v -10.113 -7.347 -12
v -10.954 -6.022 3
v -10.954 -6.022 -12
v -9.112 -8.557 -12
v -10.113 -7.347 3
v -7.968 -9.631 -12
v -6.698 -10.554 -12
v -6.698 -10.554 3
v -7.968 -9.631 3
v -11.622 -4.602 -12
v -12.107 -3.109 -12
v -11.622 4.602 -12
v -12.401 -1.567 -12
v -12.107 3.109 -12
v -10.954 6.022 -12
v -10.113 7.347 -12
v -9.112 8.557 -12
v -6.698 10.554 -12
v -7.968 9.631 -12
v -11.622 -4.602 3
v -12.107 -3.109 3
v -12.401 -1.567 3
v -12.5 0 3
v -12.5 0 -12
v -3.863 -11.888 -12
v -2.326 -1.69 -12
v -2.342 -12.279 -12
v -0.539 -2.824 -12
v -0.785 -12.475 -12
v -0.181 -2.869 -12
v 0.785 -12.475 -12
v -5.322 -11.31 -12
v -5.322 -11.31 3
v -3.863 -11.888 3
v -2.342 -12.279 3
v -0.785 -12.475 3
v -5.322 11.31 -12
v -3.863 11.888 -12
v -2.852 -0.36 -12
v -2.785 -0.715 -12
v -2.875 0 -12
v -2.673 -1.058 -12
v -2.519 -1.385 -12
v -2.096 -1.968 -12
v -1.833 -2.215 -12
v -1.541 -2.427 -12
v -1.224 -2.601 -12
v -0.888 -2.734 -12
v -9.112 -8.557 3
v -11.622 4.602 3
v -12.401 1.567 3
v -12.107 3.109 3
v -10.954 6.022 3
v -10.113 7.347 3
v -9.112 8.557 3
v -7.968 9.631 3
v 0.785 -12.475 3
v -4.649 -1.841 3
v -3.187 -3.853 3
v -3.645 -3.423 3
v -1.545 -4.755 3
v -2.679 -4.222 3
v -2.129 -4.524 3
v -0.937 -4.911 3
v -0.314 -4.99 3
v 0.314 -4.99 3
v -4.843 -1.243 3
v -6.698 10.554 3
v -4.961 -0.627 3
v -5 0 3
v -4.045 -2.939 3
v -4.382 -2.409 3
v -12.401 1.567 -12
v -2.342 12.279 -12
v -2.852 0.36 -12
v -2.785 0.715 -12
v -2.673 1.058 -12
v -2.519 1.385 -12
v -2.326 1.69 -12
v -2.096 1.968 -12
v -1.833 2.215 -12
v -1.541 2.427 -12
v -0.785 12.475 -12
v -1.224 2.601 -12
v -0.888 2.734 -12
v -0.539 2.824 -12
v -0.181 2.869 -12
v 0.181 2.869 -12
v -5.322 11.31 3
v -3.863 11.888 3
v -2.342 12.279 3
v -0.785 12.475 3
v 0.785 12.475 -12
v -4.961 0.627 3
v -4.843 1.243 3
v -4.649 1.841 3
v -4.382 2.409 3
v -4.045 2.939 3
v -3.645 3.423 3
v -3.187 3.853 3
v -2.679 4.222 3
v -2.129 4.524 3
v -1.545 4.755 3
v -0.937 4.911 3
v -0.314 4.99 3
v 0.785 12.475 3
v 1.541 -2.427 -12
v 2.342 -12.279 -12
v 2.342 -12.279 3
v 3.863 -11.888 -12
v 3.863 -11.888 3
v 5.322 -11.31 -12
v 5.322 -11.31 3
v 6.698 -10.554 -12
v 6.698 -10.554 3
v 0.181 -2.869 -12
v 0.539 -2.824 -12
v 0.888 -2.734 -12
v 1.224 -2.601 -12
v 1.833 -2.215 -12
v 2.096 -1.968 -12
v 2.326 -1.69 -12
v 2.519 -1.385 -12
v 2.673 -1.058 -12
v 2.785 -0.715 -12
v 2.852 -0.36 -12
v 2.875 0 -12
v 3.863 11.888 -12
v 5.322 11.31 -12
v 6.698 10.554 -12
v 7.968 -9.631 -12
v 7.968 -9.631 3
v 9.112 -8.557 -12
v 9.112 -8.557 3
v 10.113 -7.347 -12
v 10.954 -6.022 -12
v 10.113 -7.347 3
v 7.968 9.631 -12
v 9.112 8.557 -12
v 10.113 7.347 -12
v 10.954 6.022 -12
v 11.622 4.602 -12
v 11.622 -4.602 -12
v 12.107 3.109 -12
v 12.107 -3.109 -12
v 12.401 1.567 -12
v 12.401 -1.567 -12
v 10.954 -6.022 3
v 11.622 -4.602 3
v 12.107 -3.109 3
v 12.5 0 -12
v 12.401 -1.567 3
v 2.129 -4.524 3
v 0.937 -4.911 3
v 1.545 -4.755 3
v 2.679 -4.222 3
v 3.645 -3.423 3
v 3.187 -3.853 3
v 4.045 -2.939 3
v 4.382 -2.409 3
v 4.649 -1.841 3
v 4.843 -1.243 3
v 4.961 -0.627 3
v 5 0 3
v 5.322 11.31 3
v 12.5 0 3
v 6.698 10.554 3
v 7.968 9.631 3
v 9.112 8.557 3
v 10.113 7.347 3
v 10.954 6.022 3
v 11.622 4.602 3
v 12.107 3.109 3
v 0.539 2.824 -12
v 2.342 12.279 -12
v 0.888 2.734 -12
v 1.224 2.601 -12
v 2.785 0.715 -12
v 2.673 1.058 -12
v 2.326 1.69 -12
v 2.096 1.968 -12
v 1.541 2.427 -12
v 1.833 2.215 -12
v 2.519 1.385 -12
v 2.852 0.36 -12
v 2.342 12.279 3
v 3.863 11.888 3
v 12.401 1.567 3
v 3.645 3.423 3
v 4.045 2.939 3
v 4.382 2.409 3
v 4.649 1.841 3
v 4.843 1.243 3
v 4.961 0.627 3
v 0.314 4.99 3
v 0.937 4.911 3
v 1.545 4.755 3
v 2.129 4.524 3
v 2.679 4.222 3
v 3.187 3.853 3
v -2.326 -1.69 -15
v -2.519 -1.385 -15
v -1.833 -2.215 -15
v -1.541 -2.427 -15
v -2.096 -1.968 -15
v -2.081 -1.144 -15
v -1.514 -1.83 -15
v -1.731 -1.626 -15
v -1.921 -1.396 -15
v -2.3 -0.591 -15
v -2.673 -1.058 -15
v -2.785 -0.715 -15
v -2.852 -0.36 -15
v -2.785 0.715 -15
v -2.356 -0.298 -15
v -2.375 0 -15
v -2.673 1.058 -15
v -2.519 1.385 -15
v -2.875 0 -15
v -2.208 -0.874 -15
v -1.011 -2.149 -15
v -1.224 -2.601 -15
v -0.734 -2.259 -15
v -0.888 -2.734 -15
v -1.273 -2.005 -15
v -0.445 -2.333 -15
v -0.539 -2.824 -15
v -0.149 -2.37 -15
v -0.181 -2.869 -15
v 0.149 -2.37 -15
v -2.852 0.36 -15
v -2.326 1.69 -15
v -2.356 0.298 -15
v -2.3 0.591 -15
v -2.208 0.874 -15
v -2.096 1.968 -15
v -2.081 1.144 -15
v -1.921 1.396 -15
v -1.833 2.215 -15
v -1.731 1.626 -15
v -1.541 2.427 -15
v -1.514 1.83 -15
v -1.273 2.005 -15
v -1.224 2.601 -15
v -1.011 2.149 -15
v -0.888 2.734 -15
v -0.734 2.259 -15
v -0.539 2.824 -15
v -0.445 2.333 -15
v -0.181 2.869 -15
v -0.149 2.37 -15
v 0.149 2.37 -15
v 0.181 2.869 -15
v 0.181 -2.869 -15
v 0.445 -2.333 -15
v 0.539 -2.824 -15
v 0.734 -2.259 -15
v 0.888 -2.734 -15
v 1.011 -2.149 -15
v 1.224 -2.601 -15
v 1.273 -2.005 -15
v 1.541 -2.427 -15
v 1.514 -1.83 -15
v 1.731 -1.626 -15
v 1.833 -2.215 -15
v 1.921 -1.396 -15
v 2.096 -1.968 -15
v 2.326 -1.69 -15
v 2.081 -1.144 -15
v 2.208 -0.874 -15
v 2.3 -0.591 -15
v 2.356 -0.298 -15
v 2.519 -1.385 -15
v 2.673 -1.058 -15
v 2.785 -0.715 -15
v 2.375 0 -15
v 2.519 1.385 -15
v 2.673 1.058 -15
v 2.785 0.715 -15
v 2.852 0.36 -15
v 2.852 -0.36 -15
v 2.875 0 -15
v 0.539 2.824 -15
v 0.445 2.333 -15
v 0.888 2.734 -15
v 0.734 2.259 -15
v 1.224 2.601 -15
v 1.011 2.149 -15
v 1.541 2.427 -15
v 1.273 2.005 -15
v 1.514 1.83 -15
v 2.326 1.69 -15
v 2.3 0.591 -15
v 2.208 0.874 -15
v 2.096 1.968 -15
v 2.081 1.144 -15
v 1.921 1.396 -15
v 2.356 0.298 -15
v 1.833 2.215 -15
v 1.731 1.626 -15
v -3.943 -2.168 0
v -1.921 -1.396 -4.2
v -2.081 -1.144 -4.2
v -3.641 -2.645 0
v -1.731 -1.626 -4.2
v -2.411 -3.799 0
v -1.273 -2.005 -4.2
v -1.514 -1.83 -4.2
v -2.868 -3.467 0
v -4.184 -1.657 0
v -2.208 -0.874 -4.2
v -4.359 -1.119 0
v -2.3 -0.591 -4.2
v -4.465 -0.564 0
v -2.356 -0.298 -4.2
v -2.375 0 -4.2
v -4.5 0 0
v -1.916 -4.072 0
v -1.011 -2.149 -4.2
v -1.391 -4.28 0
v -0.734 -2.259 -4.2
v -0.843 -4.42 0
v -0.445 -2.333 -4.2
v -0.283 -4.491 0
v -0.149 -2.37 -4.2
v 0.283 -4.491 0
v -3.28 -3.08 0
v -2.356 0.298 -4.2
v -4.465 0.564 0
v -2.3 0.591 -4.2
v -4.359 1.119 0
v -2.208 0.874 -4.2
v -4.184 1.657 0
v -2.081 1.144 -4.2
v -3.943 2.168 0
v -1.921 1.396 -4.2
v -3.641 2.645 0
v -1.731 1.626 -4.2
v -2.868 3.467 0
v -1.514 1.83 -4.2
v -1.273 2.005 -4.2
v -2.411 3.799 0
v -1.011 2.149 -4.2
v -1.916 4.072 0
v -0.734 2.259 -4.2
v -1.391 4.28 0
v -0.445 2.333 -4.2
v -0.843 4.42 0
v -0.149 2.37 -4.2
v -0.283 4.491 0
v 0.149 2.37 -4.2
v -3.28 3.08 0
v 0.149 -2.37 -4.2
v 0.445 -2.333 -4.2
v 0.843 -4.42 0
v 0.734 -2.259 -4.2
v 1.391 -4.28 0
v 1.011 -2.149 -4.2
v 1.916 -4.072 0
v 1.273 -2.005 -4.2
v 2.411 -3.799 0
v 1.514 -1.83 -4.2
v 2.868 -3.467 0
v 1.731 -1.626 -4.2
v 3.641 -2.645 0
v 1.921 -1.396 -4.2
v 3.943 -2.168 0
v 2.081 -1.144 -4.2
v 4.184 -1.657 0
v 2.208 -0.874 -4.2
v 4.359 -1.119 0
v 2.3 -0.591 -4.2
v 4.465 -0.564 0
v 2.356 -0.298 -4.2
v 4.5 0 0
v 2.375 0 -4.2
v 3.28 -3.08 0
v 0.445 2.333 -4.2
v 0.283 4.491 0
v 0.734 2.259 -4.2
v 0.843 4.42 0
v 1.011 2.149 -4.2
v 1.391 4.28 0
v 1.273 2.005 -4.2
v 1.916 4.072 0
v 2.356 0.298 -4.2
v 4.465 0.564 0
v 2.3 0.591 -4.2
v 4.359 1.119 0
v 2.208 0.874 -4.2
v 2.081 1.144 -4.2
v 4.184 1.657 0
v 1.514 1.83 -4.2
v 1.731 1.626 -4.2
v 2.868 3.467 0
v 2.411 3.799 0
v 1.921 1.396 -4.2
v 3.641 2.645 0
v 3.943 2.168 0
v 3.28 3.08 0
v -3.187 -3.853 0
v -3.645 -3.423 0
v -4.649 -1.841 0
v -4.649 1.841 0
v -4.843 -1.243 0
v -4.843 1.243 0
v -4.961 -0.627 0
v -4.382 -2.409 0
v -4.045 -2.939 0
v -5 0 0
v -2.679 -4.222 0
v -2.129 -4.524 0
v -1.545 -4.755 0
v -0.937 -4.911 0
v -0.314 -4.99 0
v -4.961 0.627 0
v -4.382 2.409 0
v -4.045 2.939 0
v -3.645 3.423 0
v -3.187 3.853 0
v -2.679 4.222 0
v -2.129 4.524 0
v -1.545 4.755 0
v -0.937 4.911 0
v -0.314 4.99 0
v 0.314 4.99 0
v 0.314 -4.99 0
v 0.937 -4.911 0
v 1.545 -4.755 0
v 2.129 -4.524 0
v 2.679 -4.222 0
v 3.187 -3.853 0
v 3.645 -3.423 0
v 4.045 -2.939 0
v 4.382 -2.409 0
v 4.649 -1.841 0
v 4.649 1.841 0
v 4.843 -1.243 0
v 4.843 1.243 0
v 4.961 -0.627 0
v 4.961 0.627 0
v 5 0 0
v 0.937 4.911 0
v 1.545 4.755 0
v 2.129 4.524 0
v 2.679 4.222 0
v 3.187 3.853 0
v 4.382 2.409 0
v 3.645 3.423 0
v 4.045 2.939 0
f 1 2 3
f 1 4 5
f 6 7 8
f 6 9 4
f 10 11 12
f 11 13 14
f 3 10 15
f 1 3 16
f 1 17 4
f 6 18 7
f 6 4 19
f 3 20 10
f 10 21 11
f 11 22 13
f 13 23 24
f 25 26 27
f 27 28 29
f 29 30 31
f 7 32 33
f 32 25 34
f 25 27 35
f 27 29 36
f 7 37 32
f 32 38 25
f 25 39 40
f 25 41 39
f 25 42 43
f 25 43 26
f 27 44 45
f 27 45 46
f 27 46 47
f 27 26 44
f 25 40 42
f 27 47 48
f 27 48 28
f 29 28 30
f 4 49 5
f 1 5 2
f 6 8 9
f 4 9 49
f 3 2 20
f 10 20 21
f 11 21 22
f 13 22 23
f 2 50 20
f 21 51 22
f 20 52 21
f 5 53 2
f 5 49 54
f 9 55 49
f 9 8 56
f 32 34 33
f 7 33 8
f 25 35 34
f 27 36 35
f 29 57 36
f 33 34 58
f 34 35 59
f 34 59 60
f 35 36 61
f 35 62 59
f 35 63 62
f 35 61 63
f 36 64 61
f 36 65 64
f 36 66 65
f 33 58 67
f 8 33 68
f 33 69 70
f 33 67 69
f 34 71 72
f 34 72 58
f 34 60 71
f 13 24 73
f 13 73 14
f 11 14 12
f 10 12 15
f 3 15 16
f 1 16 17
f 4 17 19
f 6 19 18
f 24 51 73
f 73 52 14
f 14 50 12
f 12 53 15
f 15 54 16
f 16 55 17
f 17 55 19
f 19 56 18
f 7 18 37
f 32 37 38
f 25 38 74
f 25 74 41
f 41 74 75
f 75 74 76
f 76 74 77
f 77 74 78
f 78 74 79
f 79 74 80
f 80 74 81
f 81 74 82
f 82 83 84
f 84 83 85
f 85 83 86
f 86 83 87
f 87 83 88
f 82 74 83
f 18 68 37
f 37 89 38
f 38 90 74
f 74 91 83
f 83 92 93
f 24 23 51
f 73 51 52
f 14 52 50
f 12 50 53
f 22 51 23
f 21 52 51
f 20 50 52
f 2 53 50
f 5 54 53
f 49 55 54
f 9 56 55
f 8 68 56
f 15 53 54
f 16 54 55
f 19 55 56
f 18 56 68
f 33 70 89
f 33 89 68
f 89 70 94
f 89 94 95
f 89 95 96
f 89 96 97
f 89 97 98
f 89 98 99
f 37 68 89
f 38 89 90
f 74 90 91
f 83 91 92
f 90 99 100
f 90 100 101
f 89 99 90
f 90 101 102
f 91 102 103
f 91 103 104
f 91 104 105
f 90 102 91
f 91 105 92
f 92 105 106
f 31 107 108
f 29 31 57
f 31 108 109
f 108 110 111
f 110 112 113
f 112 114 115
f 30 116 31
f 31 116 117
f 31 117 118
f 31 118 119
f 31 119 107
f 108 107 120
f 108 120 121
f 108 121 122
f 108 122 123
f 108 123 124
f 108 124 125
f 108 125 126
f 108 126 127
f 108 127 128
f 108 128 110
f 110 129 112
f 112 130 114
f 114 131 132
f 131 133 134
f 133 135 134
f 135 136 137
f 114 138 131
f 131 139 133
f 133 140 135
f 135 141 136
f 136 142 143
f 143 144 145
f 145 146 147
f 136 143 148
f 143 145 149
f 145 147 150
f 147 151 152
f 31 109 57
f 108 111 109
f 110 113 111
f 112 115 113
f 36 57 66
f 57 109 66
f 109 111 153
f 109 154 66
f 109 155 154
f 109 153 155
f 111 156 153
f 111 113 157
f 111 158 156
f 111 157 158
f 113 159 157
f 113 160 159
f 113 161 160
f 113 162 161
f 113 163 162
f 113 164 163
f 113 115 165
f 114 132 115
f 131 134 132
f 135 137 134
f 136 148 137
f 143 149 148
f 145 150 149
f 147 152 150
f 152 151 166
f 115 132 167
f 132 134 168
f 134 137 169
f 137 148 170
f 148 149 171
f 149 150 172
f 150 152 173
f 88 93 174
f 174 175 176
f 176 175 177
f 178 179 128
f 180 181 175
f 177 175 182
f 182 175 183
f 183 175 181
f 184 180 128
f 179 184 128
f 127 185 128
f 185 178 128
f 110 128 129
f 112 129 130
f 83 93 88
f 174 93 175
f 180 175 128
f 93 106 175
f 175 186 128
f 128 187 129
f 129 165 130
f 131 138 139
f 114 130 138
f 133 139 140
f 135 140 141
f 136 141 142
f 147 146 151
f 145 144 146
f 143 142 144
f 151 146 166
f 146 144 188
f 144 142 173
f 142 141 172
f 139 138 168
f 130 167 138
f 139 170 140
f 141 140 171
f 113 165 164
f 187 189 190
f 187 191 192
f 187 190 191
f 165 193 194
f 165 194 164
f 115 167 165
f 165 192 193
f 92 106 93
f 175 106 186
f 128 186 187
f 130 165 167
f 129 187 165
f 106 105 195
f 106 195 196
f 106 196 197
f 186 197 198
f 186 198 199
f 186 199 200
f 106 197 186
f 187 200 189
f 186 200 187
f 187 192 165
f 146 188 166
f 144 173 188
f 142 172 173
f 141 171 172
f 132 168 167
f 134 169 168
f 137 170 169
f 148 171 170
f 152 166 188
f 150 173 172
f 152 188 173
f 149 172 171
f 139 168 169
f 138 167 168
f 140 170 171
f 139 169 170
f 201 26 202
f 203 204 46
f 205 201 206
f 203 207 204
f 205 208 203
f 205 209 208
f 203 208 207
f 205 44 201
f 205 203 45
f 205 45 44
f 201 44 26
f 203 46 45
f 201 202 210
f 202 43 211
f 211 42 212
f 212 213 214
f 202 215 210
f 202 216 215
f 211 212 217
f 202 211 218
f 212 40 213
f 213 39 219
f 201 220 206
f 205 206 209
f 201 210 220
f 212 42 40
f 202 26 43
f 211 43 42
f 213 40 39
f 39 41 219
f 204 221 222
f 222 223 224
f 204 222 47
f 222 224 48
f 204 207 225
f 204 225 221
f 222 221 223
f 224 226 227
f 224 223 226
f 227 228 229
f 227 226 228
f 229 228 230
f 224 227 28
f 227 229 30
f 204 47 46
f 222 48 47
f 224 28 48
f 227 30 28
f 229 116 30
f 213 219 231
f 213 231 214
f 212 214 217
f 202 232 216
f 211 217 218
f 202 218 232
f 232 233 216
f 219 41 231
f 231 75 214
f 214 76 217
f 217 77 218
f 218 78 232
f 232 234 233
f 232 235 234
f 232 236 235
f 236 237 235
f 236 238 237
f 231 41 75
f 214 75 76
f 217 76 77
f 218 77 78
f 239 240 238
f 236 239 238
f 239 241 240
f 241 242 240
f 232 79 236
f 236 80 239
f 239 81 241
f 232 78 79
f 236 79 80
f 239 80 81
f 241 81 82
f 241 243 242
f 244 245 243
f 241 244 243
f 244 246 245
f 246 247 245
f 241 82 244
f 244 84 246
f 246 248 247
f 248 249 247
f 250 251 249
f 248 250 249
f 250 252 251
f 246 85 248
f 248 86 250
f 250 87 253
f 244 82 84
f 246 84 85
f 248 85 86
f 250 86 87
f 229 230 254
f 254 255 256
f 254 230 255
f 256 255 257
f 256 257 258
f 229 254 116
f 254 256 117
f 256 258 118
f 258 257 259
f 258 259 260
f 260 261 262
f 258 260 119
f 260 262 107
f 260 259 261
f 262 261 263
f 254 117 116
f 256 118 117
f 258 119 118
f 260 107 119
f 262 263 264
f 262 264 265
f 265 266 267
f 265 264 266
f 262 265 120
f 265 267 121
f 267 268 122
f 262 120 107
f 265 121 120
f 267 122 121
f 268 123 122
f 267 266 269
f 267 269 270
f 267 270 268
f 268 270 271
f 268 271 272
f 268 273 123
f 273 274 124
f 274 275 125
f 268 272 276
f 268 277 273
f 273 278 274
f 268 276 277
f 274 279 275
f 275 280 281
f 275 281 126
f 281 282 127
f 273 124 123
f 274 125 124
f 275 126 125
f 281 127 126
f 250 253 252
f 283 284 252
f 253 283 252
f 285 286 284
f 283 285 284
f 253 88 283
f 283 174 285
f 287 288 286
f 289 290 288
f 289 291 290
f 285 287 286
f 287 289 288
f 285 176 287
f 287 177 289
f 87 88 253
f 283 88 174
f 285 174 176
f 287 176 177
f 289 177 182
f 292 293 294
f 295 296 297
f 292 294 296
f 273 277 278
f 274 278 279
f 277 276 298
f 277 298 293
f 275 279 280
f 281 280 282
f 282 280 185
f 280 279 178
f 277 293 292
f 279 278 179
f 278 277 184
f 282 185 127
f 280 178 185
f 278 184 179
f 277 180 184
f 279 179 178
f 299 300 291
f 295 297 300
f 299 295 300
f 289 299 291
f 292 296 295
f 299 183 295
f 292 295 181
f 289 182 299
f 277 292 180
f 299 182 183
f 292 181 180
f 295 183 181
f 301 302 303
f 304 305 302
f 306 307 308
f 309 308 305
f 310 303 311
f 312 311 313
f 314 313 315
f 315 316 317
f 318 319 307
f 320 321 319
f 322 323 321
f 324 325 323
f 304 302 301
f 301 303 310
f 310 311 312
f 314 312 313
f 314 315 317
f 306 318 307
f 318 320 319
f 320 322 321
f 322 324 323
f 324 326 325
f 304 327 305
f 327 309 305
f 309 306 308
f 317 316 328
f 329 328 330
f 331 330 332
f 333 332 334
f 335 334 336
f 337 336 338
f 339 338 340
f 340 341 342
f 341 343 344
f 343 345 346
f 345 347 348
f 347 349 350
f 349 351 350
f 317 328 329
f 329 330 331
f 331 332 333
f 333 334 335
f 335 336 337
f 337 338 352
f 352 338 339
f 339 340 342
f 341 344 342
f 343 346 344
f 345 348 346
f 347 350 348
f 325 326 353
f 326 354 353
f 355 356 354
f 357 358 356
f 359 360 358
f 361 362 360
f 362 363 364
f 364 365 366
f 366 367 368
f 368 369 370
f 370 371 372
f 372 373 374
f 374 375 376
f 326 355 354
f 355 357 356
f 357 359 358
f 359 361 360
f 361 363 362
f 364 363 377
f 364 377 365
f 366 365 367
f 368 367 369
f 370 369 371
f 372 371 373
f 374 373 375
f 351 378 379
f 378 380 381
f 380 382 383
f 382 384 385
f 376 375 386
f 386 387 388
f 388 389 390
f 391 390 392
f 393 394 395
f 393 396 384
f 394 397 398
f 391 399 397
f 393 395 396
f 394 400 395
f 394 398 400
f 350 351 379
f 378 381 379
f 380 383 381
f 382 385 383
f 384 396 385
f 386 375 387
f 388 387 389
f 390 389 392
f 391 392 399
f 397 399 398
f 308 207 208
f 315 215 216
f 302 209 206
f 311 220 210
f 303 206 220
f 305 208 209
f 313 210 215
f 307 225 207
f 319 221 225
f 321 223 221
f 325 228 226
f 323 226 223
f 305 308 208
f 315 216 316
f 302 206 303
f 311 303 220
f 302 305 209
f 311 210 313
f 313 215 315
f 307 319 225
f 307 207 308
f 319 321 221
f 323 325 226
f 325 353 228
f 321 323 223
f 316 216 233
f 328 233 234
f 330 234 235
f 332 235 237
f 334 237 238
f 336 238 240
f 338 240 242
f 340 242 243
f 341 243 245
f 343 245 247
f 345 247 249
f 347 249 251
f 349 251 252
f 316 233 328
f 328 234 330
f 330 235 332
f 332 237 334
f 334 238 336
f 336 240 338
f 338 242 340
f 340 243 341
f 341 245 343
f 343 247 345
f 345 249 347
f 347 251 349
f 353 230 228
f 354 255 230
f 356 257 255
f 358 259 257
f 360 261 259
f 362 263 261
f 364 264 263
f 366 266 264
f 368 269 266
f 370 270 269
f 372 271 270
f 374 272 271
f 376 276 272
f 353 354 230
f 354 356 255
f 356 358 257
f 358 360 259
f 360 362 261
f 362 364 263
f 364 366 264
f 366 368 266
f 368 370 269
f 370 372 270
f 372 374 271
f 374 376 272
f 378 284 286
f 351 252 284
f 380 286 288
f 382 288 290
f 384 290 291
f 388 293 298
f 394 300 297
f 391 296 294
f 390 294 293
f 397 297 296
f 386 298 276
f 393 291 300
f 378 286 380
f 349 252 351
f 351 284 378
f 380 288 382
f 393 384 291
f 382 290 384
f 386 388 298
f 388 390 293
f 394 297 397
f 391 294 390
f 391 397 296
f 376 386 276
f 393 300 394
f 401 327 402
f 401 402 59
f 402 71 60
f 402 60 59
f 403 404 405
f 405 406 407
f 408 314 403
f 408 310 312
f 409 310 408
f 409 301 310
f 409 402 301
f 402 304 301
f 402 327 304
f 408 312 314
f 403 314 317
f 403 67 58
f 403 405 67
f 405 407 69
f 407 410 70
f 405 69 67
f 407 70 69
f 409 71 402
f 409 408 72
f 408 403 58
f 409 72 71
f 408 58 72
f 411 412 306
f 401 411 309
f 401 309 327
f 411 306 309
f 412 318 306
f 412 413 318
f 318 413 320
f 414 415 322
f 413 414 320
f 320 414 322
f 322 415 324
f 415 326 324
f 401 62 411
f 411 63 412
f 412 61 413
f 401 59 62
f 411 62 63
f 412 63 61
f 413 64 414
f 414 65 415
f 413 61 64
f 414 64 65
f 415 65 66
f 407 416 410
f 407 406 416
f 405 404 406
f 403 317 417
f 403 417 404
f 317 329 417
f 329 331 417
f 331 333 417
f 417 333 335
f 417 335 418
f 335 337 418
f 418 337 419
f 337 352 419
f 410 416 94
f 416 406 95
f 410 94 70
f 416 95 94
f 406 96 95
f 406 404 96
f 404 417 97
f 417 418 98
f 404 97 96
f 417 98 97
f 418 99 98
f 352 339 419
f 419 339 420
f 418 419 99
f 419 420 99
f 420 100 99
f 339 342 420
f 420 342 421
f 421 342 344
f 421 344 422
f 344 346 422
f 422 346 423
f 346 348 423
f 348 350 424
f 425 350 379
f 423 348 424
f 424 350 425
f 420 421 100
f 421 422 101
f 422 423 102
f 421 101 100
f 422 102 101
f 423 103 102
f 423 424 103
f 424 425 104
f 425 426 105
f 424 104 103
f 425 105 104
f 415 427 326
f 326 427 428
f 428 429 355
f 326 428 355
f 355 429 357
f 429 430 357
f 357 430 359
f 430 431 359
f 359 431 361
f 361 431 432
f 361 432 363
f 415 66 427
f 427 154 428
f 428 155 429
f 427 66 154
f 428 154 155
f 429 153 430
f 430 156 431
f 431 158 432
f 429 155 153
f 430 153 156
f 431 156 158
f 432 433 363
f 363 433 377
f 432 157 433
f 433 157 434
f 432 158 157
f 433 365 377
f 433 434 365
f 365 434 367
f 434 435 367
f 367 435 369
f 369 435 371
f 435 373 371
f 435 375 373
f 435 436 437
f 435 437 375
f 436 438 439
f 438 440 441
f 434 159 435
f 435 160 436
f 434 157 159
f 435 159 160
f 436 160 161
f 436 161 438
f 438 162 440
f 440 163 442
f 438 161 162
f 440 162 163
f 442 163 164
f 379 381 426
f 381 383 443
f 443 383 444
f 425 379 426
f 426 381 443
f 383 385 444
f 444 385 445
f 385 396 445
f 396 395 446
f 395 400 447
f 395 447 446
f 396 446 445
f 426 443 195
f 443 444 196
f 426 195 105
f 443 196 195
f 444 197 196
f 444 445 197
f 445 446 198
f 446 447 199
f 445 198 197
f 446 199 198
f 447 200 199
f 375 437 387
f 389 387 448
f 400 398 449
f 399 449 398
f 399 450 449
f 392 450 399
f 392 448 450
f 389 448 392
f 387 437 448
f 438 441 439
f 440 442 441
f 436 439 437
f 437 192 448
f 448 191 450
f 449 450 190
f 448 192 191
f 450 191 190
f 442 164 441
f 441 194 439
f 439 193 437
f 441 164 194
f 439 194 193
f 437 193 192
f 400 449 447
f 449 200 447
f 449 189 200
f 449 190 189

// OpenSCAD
$fn = 50;


difference() {
	union() {
		translate(v = [0, 0, -12.0000000000]) {
			cylinder(h = 15, r = 12.5000000000);
		}
		#translate(v = [0, 0, -15.0000000000]) {
			cylinder(h = 15, r = 2.8750000000);
		}
	}
	union() {
		translate(v = [0, 0, 0]) {
			rotate(a = [0, 0, 0]) {
				difference() {
					union() {
						translate(v = [0, 0, -15.0000000000]) {
							cylinder(h = 15, r = 2.2500000000);
						}
						translate(v = [0, 0, -4.2000000000]) {
							cylinder(h = 4.2000000000, r1 = 2.3750000000, r2 = 4.5000000000);
						}
						translate(v = [0, 0, -15.0000000000]) {
							cylinder(h = 15, r = 2.3750000000);
						}
						translate(v = [0, 0, -15.0000000000]) {
							cylinder(h = 15, r = 2.2500000000);
						}
					}
					union();
				}
			}
		}
		#cylinder(h = 3, r = 5.0000000000);
	}
}
